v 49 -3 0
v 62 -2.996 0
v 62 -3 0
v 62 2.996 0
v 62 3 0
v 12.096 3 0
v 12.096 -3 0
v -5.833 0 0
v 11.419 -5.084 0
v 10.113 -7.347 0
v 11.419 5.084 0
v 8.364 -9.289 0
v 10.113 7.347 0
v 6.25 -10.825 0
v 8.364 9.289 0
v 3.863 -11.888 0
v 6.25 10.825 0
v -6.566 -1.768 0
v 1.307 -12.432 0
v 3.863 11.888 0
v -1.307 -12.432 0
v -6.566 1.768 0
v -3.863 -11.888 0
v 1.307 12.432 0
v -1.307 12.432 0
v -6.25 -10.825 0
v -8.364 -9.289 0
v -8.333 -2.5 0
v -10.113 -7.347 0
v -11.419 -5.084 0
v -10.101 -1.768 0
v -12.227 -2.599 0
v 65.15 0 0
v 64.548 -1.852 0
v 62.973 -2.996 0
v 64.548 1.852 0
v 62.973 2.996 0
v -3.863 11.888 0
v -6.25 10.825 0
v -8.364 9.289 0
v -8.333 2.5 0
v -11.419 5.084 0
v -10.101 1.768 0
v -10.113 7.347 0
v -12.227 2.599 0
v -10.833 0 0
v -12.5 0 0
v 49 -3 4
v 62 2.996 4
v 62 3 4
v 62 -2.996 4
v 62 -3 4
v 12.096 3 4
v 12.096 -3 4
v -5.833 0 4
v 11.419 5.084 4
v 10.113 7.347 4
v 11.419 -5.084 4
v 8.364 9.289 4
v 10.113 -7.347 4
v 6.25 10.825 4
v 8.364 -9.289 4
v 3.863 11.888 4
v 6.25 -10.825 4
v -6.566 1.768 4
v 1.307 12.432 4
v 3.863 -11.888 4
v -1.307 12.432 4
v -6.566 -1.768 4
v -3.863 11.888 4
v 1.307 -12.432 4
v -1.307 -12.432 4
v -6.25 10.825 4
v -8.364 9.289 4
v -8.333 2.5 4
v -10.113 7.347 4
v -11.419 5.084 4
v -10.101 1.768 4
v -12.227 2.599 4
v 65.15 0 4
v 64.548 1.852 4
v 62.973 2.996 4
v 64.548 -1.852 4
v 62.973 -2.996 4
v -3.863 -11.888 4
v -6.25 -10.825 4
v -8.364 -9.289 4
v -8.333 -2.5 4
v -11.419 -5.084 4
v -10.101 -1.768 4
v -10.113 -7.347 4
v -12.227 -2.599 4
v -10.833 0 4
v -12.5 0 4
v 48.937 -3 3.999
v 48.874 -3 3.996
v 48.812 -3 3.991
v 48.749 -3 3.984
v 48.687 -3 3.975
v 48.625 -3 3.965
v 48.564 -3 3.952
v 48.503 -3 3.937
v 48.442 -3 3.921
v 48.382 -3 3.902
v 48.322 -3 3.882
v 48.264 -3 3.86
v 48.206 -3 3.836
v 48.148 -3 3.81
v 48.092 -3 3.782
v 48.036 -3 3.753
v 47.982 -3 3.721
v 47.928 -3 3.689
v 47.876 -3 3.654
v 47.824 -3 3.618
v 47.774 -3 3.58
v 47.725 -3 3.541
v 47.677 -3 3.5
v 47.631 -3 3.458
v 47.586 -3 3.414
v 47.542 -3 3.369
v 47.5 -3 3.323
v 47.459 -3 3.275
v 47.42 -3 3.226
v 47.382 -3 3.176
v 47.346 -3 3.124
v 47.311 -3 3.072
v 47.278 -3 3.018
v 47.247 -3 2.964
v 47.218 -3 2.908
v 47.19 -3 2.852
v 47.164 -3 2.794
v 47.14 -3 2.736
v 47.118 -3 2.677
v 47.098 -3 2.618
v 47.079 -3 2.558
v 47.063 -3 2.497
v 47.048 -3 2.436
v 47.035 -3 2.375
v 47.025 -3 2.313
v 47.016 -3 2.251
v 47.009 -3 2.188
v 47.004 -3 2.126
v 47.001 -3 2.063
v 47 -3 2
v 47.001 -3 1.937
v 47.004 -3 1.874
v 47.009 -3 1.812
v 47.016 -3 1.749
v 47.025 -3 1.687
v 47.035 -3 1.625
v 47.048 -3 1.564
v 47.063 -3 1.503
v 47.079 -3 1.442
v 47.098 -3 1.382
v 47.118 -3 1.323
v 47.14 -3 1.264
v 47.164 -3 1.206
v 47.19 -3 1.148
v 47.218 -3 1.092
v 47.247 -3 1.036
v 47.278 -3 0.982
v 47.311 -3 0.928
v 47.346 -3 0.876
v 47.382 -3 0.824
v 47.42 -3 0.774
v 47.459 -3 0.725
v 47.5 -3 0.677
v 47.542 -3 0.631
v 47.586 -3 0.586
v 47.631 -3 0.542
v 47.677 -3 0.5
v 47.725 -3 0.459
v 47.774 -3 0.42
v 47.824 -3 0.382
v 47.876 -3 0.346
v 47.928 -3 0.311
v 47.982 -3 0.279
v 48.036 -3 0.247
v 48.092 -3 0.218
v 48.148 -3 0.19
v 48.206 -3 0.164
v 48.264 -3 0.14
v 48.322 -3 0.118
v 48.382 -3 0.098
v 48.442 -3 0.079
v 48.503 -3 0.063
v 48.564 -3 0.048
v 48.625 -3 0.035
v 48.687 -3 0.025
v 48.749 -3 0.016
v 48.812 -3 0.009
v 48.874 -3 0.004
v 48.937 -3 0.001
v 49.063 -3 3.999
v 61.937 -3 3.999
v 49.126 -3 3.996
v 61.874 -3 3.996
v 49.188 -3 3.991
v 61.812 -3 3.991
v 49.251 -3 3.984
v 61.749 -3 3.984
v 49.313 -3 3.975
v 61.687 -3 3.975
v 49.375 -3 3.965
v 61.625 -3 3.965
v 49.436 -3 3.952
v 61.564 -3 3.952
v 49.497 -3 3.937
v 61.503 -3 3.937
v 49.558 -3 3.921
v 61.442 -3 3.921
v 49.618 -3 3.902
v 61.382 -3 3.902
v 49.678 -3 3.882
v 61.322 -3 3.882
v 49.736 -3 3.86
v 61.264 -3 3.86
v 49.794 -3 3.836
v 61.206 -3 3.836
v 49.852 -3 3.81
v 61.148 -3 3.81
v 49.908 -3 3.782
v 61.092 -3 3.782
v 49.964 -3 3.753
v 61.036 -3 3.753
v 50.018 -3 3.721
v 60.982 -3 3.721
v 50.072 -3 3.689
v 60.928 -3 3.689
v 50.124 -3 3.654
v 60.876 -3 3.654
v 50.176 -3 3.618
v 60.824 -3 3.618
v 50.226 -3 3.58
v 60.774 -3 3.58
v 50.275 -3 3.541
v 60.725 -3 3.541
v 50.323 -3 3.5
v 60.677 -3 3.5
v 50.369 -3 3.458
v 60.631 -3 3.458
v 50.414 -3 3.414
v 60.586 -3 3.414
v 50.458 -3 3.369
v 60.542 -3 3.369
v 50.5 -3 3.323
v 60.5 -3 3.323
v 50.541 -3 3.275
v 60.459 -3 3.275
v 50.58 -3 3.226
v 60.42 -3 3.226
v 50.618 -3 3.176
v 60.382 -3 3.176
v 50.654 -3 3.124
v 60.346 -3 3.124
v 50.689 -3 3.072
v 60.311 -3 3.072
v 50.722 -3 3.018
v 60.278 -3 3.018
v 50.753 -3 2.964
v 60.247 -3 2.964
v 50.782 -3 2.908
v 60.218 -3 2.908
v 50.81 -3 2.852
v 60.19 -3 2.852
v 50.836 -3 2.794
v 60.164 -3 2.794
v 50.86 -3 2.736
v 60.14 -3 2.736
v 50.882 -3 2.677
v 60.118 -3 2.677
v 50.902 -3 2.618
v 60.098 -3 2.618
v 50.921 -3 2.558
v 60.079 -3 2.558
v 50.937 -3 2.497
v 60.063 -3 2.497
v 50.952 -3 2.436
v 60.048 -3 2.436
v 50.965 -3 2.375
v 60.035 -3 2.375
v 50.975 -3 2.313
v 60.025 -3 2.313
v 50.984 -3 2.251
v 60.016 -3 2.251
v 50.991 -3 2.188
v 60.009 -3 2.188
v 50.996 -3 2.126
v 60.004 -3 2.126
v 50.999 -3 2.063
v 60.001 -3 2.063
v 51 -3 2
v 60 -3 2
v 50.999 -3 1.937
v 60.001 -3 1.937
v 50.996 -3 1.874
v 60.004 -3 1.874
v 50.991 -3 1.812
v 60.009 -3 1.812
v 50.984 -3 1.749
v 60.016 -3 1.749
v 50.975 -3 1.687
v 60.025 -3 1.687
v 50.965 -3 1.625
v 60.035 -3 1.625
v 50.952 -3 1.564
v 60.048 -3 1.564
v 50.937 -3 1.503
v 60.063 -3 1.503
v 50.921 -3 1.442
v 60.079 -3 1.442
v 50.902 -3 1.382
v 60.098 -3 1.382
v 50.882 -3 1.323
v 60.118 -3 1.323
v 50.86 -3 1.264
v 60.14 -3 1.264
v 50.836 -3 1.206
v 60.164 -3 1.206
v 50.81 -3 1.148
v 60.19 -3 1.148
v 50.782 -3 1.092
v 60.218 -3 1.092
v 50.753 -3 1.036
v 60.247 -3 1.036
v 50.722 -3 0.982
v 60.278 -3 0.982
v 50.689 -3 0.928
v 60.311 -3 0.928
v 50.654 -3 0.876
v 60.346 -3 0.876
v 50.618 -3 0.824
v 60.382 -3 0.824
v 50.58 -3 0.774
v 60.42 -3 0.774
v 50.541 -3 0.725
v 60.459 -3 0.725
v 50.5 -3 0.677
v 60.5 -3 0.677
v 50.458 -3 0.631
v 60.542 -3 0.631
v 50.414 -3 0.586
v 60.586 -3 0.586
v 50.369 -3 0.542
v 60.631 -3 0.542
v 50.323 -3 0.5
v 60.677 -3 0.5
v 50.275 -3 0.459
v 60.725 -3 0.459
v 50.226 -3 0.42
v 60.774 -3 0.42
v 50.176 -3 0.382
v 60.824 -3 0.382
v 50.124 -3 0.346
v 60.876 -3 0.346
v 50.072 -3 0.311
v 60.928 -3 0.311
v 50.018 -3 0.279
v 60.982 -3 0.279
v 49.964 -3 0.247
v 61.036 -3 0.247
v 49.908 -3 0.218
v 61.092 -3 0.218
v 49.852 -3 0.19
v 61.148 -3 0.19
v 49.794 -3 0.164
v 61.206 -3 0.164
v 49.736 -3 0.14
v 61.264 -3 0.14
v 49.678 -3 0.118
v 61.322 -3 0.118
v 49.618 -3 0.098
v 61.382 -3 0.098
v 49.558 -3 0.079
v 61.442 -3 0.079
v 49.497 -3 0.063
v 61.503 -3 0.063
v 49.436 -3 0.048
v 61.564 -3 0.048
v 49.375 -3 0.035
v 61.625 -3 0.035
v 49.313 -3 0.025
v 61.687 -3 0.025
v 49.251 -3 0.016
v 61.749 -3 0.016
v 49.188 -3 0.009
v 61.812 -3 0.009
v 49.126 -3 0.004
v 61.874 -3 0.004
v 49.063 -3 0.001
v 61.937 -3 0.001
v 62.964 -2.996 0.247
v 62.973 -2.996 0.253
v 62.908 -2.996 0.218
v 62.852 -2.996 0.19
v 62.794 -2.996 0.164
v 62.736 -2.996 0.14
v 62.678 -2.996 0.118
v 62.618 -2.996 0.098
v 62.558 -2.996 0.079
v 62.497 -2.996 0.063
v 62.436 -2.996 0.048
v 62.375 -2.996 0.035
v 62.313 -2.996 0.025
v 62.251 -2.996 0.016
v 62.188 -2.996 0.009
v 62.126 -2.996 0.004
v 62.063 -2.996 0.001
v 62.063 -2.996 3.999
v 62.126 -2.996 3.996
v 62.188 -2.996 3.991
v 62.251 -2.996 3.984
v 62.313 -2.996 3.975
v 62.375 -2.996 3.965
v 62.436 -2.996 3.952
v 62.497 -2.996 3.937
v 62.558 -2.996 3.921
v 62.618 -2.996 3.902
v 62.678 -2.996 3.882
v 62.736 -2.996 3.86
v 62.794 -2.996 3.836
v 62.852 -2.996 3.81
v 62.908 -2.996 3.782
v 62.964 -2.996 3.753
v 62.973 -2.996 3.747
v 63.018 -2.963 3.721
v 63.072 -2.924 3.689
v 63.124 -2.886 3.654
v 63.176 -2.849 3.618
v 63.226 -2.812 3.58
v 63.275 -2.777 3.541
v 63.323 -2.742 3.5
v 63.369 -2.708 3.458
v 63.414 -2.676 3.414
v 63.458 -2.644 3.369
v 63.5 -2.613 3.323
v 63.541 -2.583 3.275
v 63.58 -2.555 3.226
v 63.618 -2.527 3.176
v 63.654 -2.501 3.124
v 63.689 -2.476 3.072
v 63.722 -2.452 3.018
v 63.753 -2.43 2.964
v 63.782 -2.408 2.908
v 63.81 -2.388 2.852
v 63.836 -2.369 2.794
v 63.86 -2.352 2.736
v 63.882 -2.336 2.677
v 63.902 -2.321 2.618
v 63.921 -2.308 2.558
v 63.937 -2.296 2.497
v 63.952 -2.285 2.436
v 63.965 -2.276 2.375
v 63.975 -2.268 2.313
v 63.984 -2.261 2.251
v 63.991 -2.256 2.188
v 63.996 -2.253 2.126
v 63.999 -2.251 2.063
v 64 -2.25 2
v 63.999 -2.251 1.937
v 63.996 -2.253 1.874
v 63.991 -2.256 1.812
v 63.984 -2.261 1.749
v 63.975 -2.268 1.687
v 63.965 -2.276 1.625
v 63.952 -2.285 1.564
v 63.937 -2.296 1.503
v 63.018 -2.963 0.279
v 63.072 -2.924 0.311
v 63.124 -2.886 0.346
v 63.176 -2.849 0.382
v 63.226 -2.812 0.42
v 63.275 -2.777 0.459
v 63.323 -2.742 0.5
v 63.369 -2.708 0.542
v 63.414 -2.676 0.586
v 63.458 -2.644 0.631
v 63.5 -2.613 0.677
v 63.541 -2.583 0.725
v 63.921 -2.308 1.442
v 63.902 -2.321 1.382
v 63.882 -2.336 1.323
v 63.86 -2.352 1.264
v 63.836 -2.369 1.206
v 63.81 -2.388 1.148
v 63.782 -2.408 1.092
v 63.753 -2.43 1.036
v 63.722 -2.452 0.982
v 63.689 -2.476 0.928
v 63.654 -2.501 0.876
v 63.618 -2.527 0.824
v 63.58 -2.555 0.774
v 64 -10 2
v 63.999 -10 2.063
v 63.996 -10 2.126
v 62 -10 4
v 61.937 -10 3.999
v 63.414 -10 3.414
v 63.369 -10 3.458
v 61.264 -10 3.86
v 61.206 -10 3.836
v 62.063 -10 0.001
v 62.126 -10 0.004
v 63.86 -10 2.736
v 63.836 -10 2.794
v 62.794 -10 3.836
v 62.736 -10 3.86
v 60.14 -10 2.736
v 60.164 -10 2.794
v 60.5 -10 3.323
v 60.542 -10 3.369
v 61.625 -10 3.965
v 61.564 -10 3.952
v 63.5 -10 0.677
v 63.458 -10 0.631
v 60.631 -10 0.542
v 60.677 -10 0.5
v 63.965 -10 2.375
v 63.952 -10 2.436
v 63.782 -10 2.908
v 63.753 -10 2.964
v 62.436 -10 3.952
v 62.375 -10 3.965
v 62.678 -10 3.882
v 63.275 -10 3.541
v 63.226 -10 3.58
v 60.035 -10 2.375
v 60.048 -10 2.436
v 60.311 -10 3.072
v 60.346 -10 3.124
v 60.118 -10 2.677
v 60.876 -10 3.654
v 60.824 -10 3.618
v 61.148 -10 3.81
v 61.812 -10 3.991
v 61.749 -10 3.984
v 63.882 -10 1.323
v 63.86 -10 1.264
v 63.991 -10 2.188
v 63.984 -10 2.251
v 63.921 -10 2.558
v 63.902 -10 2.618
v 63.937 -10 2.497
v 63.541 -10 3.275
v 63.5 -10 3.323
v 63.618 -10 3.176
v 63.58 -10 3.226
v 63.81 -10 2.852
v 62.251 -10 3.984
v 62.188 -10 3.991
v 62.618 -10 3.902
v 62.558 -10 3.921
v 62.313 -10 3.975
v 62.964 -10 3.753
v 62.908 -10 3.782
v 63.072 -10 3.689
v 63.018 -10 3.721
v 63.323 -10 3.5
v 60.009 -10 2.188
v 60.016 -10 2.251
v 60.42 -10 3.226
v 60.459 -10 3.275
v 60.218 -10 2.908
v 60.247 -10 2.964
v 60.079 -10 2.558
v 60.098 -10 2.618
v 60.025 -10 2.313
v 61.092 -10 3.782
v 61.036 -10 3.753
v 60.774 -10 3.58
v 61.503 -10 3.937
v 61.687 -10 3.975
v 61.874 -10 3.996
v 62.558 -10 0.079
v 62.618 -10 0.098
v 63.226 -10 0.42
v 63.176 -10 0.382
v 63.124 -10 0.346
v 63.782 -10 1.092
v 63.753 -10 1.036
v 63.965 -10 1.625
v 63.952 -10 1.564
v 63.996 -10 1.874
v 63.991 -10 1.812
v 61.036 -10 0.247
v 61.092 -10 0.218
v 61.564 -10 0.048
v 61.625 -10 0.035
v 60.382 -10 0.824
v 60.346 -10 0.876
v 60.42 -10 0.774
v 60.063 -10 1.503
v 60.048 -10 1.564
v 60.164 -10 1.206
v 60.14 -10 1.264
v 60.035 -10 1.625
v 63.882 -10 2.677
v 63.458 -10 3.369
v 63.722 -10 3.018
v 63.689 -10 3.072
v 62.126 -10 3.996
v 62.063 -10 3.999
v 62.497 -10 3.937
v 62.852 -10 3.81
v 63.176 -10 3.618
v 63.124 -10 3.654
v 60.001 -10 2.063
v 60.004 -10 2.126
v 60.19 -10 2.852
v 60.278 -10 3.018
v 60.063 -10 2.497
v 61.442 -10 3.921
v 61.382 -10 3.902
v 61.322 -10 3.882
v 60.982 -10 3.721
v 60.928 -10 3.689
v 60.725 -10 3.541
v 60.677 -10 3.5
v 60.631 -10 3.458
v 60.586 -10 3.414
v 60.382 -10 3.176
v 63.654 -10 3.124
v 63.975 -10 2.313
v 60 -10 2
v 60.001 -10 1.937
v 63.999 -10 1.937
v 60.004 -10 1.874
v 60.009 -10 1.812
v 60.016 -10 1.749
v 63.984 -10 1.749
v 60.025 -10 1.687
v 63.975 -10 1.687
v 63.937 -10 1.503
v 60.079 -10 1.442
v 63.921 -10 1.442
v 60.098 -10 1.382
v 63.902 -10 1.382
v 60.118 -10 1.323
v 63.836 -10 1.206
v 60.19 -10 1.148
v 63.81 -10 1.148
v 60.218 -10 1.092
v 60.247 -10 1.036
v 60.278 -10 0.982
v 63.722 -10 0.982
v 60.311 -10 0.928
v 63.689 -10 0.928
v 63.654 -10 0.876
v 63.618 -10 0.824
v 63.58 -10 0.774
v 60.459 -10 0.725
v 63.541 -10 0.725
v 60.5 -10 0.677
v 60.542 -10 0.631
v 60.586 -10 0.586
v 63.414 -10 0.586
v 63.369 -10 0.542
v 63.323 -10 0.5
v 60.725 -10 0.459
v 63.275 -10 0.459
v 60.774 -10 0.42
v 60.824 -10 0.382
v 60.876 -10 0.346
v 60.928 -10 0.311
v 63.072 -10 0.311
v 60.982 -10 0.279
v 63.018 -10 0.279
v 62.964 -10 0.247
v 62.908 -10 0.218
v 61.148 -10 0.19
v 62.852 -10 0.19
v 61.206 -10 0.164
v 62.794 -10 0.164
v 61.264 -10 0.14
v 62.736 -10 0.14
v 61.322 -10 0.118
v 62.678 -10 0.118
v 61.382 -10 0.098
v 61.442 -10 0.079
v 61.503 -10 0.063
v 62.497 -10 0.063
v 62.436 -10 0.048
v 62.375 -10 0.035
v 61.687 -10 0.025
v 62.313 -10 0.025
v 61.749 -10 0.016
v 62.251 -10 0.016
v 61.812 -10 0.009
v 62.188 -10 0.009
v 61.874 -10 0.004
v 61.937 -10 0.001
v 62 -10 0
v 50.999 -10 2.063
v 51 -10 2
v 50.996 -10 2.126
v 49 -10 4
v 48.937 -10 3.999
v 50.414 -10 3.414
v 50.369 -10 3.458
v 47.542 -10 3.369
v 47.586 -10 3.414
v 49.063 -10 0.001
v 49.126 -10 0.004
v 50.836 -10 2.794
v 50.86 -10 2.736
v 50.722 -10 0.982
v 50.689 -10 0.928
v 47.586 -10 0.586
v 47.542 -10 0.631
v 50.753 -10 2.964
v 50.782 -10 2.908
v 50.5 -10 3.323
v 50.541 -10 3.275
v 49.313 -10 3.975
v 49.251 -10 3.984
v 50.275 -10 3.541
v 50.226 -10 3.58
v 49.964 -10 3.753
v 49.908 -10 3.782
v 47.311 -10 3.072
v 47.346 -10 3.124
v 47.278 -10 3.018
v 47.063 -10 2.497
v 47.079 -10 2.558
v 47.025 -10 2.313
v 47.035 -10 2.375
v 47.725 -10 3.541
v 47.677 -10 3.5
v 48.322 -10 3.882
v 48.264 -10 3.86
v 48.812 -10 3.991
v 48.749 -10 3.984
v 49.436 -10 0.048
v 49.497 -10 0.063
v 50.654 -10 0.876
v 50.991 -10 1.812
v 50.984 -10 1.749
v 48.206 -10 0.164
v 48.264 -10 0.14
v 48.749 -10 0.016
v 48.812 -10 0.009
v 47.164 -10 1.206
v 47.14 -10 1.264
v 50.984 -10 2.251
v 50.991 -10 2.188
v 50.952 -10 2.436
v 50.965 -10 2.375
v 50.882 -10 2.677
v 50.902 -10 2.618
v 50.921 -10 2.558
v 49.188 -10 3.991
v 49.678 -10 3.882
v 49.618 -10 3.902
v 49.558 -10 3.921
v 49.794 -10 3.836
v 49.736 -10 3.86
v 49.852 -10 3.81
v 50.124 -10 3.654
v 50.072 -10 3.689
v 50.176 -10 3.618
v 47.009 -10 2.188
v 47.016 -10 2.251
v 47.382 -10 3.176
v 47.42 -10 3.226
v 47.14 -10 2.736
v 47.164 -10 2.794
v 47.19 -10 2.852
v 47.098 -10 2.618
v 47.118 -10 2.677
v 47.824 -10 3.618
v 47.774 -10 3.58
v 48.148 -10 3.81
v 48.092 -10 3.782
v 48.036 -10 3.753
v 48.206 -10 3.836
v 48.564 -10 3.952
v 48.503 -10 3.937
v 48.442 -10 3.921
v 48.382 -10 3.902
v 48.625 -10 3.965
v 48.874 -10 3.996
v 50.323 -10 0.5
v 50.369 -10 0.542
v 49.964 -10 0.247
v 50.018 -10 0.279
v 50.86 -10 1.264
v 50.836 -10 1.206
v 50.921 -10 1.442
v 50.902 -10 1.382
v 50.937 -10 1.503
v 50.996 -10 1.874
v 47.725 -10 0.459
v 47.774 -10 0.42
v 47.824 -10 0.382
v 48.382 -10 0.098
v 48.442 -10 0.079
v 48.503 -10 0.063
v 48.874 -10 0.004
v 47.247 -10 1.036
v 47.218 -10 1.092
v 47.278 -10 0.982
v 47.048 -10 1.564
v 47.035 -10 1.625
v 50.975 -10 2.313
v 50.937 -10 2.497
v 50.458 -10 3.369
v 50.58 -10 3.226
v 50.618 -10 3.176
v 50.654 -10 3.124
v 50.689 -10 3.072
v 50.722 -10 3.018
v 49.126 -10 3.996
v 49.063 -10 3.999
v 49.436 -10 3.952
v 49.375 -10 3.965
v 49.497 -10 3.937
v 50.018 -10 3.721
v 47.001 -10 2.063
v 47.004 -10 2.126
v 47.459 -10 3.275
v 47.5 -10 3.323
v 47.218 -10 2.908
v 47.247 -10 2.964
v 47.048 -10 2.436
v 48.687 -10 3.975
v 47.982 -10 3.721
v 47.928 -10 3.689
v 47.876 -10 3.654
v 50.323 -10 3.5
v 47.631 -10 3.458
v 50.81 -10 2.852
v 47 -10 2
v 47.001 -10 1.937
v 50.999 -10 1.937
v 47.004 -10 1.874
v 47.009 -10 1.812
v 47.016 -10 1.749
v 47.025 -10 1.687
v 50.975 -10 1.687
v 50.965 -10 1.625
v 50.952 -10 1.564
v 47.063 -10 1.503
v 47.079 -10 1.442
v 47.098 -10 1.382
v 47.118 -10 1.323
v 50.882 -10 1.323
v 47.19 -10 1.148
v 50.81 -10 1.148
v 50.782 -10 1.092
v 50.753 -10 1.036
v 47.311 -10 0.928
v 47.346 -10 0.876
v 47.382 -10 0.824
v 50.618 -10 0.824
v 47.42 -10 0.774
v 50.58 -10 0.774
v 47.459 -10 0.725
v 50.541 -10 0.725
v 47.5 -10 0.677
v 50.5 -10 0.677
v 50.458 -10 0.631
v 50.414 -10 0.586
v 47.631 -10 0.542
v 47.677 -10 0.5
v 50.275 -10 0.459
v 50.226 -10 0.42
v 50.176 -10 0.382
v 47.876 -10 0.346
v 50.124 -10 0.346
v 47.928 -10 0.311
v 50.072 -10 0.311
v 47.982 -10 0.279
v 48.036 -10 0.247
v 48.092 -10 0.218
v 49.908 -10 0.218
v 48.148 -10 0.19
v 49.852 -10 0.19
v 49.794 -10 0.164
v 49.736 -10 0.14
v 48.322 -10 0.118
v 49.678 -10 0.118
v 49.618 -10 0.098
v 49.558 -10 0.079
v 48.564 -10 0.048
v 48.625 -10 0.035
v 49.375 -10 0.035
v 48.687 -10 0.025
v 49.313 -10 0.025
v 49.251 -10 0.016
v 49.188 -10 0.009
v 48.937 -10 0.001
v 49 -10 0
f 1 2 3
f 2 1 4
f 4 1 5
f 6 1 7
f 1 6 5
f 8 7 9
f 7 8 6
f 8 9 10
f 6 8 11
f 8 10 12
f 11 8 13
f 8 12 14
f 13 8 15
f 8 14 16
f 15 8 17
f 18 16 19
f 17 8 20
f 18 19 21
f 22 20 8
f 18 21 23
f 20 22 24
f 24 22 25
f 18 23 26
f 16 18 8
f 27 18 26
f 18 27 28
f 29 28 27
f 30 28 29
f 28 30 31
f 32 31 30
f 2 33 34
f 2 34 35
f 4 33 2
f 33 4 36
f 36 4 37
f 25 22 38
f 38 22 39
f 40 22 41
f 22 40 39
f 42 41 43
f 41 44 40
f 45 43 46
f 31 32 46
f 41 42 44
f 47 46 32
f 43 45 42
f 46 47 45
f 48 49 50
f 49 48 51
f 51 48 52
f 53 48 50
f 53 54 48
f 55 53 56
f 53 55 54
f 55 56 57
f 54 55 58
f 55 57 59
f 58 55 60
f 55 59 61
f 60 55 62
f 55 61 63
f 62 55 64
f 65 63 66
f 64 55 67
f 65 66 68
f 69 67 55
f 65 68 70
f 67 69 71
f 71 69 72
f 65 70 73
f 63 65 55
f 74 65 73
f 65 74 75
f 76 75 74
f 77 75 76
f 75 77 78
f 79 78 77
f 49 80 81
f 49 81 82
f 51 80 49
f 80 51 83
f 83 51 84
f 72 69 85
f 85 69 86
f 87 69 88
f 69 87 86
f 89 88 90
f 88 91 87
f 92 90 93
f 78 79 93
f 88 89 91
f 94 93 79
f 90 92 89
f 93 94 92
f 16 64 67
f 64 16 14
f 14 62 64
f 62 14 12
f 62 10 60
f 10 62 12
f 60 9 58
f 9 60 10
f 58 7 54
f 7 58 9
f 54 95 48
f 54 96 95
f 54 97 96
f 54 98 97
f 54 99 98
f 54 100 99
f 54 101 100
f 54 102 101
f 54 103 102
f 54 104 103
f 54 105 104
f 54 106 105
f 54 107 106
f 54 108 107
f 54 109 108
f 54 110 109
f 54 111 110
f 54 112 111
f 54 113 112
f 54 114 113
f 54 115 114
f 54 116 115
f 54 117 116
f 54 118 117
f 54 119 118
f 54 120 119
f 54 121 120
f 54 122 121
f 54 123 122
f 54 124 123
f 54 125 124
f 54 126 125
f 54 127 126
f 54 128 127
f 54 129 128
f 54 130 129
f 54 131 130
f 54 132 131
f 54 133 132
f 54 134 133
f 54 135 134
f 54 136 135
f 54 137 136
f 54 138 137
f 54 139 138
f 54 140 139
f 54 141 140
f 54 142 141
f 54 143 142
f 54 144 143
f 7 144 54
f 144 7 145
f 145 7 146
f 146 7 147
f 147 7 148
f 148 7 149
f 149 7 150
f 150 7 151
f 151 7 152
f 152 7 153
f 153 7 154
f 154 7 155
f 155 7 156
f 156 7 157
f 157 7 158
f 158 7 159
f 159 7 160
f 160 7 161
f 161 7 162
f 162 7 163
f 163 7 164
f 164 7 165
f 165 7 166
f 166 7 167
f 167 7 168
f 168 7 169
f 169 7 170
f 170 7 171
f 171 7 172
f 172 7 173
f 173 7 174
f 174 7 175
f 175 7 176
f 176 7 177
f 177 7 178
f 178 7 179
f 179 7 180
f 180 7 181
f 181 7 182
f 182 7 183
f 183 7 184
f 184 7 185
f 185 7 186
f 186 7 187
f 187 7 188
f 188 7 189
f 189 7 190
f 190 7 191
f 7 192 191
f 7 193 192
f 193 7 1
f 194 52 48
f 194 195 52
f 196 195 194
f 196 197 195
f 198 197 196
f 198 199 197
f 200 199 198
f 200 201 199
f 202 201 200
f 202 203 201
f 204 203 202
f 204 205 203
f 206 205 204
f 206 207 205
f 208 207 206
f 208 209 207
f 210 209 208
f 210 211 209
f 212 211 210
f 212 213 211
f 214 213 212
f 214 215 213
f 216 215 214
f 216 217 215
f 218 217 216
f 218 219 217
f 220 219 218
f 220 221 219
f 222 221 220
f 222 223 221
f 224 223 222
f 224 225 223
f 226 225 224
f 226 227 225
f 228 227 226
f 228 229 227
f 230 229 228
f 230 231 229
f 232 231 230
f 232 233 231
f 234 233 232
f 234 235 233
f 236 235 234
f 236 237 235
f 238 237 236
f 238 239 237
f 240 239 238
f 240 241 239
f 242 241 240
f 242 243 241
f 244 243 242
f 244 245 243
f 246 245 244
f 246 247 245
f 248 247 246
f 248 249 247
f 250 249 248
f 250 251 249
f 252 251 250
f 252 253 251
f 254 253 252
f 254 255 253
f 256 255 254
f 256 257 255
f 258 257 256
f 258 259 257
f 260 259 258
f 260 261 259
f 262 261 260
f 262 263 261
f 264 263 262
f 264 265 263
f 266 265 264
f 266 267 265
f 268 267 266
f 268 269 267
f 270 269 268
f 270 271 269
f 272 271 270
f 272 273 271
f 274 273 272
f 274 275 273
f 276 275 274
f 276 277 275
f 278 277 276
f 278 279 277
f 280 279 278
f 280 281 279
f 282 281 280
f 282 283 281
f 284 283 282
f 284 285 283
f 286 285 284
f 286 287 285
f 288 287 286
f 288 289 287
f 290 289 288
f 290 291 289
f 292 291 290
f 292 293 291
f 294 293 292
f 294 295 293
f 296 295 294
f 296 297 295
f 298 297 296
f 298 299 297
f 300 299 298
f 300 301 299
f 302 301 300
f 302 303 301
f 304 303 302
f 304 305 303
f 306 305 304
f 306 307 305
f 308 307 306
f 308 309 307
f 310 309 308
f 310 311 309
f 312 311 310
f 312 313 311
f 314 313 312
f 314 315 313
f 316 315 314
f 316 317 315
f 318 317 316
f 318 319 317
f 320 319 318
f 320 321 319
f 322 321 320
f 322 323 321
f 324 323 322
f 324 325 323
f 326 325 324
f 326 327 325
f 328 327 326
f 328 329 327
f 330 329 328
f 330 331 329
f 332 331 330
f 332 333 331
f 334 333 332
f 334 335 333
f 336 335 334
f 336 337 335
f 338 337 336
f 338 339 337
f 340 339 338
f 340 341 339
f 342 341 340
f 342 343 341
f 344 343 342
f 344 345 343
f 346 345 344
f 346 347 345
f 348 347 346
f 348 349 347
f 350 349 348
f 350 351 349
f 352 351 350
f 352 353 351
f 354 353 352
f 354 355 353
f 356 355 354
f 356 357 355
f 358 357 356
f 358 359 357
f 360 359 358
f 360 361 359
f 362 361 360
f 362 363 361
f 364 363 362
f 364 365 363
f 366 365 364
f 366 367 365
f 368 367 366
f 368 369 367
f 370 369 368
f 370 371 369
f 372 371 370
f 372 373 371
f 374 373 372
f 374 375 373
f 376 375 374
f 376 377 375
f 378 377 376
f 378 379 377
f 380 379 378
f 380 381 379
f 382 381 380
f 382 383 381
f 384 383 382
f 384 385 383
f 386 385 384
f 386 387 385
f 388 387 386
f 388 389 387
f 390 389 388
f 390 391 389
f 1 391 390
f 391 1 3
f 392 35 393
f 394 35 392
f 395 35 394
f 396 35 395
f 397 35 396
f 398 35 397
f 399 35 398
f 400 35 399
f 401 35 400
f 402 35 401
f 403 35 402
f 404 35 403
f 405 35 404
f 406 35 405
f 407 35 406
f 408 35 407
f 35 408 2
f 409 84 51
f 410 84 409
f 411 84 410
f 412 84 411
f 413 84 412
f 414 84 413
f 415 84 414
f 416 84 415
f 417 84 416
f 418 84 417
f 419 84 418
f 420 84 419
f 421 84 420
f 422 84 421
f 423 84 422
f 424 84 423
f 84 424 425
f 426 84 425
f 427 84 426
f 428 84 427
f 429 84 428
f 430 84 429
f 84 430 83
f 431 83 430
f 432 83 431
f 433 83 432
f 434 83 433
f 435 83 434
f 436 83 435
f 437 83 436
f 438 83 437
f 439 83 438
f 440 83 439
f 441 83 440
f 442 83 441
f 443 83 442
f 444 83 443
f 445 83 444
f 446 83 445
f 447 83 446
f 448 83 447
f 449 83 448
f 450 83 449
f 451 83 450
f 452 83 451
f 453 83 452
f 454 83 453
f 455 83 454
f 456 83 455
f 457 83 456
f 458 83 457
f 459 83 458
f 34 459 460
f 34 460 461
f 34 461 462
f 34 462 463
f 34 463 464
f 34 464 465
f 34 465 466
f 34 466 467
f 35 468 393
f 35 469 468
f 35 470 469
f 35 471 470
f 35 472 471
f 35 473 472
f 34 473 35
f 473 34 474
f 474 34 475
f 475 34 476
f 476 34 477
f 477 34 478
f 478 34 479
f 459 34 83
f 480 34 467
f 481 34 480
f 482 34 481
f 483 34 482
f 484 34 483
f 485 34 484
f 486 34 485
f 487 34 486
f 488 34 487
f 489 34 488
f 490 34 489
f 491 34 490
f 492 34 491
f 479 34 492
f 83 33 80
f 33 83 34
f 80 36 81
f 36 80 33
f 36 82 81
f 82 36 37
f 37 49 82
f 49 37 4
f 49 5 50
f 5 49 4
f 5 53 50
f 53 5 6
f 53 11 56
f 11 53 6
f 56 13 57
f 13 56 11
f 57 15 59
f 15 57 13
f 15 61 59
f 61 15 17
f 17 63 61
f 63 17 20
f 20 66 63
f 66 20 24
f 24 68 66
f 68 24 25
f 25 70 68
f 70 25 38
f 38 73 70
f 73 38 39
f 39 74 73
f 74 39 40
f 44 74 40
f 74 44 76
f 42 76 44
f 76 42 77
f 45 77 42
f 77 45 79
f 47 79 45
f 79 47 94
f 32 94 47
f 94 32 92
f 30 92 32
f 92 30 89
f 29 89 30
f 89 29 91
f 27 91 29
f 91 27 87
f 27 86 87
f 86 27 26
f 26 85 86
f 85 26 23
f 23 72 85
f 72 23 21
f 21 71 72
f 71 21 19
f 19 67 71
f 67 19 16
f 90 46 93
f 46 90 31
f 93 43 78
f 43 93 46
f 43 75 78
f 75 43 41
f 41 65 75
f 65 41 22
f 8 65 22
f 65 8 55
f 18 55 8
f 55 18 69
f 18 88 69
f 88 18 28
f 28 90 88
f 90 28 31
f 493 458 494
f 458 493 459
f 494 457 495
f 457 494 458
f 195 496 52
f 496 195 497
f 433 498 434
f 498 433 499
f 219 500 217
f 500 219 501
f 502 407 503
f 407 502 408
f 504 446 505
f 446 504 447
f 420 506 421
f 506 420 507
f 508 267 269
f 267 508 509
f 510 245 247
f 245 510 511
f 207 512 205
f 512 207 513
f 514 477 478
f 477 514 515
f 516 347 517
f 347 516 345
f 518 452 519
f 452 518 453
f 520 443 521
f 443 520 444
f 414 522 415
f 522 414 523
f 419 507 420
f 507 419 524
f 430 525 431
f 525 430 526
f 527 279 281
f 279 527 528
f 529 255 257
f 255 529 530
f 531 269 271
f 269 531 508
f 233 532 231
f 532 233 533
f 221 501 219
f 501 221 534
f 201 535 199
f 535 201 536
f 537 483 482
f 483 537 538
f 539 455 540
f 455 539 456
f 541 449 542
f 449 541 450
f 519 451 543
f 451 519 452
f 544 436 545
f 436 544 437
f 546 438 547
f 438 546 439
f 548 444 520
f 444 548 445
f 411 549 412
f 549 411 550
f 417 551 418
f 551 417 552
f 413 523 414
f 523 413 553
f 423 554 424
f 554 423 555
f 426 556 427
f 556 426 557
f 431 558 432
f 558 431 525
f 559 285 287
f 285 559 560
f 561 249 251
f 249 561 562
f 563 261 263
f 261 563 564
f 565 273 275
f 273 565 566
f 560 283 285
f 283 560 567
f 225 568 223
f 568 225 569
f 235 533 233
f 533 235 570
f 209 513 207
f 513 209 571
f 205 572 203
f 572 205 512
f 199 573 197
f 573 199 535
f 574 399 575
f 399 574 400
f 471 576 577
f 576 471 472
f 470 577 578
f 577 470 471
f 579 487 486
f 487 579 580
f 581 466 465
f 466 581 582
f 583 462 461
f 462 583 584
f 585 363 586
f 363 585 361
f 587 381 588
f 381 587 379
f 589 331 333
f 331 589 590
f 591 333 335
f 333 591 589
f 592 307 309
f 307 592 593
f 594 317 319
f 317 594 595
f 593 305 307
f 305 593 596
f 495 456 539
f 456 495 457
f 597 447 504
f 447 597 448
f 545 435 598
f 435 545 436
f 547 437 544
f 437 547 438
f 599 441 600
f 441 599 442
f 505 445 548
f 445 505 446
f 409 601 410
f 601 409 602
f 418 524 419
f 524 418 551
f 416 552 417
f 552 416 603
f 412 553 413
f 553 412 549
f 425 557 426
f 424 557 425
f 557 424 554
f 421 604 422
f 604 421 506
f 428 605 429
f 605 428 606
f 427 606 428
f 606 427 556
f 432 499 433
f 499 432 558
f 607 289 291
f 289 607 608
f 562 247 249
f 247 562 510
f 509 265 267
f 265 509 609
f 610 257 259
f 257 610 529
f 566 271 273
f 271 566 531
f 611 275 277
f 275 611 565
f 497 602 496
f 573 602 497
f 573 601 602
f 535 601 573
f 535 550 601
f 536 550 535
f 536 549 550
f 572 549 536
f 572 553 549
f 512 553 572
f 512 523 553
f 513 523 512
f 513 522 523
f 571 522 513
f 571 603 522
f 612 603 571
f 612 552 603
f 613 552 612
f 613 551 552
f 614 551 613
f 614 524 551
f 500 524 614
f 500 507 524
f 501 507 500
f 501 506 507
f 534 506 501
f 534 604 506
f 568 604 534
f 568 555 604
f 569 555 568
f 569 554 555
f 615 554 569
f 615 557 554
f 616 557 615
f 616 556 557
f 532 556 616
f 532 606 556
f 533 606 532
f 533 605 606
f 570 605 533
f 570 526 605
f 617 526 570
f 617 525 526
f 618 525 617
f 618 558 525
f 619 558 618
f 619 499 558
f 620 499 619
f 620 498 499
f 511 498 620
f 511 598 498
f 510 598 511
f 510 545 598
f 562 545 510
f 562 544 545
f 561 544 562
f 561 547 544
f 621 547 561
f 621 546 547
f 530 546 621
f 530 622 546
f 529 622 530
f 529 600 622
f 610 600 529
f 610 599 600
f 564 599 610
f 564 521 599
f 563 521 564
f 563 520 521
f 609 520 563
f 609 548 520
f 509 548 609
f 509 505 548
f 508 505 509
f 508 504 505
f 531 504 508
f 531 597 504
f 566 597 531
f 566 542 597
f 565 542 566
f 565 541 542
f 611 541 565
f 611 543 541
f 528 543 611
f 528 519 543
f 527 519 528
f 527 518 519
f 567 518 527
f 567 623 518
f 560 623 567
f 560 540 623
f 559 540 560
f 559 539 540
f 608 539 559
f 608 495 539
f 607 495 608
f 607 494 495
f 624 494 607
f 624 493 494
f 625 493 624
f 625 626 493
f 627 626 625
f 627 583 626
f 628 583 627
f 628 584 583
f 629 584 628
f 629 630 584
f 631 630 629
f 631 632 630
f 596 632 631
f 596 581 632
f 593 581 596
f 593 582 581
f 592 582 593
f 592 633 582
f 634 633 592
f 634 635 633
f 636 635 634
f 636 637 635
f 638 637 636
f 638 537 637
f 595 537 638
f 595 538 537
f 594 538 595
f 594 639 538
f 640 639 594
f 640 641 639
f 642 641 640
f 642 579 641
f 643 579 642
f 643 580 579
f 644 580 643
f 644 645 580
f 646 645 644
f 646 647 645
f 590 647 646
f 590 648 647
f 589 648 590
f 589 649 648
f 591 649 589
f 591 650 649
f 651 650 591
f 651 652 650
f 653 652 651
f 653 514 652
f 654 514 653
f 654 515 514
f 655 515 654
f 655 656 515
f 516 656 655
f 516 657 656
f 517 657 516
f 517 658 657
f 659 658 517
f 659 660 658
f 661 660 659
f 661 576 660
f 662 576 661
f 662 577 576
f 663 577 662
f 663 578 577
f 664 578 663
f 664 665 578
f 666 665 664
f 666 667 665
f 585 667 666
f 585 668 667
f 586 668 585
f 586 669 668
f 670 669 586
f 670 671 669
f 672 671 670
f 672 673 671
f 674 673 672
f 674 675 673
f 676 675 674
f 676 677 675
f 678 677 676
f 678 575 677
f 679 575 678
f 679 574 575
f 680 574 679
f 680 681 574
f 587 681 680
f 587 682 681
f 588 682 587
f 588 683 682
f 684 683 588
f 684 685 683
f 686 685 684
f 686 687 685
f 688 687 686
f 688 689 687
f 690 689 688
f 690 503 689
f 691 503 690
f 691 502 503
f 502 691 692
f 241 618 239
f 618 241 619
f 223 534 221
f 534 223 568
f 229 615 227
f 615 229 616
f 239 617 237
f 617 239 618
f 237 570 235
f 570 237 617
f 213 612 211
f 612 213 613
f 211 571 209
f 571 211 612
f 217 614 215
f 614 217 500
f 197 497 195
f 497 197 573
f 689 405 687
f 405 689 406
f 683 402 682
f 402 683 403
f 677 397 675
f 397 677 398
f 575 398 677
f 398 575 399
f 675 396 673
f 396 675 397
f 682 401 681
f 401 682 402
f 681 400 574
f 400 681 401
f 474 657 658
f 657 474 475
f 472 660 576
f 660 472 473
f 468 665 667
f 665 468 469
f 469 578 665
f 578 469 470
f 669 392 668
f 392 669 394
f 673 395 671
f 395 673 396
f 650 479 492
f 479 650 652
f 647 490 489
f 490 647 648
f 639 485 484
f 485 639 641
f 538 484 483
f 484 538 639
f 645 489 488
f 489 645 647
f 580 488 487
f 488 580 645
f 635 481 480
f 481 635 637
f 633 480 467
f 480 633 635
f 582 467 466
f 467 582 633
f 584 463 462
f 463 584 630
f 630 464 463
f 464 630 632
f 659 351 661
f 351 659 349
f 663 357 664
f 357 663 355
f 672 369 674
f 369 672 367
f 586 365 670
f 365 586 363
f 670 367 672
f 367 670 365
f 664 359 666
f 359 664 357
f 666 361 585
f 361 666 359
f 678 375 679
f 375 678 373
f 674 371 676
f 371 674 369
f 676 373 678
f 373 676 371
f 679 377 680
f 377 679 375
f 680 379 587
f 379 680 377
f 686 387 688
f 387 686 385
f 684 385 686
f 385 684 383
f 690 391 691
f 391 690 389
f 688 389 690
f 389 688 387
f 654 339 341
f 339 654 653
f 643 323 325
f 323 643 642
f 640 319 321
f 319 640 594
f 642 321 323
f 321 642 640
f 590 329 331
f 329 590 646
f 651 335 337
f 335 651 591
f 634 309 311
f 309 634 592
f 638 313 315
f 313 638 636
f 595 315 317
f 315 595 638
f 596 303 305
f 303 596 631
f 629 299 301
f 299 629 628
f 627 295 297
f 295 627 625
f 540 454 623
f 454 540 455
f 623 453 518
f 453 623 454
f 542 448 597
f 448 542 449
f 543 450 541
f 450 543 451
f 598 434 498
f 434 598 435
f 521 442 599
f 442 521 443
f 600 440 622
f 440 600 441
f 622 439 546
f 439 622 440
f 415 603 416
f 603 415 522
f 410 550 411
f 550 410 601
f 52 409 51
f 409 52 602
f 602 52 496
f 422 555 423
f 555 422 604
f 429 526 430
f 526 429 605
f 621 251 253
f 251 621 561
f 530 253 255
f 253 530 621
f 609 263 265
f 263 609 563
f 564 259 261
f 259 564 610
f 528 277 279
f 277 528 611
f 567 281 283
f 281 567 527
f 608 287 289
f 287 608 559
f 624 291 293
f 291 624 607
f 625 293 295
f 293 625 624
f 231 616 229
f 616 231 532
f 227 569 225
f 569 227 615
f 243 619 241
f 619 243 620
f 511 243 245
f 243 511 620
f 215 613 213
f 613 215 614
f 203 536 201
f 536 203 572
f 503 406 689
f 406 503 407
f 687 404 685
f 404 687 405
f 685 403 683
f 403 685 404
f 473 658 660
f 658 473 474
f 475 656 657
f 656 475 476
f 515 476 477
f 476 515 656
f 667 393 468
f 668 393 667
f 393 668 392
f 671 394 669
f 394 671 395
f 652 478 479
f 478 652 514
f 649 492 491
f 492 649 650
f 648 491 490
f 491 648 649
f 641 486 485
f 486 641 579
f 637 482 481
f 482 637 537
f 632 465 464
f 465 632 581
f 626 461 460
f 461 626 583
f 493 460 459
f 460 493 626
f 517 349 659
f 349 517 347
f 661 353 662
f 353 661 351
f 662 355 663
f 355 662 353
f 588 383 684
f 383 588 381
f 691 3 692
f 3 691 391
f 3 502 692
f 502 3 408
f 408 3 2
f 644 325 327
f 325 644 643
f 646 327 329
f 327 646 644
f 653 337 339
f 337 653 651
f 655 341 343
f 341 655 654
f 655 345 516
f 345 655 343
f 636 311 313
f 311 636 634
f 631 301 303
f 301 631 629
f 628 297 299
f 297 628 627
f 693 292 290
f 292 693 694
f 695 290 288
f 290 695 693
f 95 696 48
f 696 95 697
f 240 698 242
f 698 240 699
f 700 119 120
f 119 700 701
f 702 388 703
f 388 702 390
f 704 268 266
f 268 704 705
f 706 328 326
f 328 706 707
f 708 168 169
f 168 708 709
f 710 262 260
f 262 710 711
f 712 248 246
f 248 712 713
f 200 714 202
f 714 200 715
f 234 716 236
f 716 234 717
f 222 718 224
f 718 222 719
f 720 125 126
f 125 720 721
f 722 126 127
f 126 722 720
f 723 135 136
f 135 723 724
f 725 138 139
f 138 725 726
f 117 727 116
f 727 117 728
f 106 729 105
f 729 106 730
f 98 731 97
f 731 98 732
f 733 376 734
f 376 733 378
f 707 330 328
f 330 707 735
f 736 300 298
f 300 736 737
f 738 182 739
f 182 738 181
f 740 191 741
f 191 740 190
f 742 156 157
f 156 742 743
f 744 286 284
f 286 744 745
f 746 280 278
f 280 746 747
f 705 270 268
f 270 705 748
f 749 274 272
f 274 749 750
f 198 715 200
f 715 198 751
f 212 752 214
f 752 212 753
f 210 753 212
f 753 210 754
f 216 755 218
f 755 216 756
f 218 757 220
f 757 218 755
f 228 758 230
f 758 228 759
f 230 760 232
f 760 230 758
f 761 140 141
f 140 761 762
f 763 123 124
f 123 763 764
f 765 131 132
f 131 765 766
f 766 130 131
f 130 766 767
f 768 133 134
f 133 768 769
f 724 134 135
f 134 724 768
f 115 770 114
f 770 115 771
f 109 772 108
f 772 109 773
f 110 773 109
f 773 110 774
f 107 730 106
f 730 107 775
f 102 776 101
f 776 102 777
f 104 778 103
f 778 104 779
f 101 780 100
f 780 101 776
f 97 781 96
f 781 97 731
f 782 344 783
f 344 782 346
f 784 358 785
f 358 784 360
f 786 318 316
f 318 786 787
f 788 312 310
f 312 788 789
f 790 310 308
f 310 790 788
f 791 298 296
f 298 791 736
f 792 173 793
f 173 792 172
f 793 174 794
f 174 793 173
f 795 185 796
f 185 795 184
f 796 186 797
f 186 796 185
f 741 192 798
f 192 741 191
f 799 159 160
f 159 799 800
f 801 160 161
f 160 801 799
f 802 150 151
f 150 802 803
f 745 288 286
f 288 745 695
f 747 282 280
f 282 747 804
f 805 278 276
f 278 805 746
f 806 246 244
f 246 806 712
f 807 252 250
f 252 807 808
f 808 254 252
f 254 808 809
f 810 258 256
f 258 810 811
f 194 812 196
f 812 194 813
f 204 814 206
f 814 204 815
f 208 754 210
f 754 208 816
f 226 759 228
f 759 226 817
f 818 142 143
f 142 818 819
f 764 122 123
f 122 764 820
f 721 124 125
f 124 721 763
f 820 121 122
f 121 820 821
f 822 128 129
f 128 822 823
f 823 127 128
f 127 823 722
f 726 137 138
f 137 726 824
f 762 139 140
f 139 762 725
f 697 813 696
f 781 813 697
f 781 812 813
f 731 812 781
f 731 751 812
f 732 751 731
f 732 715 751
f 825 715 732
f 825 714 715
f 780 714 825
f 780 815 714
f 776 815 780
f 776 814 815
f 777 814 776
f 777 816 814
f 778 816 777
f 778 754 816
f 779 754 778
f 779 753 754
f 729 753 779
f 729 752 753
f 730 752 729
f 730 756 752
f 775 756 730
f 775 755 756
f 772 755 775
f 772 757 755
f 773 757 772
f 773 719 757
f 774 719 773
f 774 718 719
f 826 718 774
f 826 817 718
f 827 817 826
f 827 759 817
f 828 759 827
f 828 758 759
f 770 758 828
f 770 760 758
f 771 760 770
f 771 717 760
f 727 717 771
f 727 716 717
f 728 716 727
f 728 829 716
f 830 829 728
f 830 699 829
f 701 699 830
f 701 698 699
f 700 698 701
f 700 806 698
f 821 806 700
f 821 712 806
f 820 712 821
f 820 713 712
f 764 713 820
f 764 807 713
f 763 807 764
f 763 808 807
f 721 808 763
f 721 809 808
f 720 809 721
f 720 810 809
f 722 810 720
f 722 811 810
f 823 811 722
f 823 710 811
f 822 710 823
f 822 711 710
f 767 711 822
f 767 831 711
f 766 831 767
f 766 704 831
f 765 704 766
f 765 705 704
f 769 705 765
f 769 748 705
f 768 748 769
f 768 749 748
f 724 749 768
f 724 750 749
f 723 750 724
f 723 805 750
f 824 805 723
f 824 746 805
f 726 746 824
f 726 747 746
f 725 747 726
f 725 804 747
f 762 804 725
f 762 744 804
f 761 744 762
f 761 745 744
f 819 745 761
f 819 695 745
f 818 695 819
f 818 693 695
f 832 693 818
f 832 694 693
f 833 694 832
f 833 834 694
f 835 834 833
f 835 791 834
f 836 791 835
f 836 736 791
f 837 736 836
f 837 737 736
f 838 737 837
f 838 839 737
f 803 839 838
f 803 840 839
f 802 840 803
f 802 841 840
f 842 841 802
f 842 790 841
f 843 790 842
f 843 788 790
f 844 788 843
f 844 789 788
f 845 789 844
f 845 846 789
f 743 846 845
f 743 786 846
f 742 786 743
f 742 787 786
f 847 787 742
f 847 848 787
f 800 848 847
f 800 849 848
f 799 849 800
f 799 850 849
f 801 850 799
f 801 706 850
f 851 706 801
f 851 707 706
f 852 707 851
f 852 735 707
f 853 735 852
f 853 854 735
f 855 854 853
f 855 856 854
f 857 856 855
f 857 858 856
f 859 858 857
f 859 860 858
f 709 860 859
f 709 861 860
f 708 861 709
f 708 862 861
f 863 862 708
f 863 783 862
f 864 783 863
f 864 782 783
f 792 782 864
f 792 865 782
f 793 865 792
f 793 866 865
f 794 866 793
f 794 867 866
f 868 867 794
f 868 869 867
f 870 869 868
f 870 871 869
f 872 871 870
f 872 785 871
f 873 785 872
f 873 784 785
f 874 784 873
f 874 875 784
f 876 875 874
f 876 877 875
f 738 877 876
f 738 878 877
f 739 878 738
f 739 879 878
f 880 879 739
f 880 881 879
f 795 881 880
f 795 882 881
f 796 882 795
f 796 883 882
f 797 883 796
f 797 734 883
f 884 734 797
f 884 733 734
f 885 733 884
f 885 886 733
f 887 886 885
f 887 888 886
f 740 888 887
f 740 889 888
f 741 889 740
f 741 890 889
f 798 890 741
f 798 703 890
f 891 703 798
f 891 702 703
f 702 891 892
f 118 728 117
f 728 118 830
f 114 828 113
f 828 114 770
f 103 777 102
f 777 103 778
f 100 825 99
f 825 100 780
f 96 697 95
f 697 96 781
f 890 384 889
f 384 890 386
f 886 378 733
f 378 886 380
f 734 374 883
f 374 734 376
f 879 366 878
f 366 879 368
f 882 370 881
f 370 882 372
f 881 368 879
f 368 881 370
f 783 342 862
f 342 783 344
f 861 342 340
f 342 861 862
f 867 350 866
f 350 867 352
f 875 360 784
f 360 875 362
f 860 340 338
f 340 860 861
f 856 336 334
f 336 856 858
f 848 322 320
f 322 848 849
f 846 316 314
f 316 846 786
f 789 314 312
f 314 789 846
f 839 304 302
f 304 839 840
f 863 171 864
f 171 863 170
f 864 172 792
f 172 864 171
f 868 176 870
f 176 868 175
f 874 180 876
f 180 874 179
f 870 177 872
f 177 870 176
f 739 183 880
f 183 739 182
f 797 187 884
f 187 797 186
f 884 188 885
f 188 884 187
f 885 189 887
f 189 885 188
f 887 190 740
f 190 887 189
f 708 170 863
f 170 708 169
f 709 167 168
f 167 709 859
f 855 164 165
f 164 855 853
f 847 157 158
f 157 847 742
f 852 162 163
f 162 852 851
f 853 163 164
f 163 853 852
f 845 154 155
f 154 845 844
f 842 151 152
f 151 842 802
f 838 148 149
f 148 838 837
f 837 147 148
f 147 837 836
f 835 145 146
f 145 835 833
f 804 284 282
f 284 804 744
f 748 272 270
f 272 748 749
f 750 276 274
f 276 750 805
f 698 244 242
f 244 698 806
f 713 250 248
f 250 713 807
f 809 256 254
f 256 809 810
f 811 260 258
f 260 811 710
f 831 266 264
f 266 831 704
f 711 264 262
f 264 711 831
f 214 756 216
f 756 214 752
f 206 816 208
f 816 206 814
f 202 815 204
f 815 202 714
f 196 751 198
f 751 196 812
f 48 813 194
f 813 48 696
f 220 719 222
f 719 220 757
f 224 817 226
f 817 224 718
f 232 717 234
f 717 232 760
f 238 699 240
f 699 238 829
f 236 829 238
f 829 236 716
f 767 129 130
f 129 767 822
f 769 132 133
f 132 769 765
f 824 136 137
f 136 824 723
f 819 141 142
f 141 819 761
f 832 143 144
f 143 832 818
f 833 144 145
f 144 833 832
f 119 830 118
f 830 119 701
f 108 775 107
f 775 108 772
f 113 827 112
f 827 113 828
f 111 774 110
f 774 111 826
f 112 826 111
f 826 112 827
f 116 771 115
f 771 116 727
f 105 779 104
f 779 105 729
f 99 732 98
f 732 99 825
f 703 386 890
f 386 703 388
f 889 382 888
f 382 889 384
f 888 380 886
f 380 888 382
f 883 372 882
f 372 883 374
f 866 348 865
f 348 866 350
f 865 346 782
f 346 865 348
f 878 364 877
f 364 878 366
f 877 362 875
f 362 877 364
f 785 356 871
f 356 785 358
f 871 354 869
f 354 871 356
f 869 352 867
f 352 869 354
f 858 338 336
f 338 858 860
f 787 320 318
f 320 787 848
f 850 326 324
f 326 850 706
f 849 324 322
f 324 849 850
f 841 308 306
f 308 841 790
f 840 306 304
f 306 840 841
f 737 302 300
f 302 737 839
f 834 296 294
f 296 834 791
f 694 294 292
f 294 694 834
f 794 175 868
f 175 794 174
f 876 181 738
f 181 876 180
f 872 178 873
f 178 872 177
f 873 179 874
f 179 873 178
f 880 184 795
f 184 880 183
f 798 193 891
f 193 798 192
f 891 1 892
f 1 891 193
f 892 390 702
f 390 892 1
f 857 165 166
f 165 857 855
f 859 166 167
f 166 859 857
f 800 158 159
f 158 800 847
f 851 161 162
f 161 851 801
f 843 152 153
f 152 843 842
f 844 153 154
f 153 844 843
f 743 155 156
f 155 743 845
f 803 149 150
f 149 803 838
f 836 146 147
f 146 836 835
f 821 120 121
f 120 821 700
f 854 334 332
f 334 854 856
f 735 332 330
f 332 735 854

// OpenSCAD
// keystand

toothgap=13;
toothwidthS=3;
toothwidthR=4;
toothlength=10;
length=62;
height=5;
handle=25;
armwidth=6;
keyring=5;

module keystand(){
	//handle
	difference() {
		circle(d=handle);
		translate([-handle/3,0]) circle(d=keyring);
	}
	//body
	translate([length/2,0,0]) square([length,armwidth],center=true);
	translate([length,0,0]) circle(d=armwidth*1.05);

	//square teeth
	//#translate([length,0,0]) rotate([0,0,270]) square([toothlength,toothwidthS]);
	//#translate([length-toothgap,0,0]) rotate([0,0,270]) square([toothlength,toothwidthS]);
}

linear_extrude(height = 4)
keystand();

//round teeth
#translate([length,0,height/2.5]) rotate([90,0,0]) cylinder(h=toothlength,d=toothwidthR, $fn=200);
#translate([length-toothgap,0,height/2.5]) rotate([90,0,0]) cylinder(h=toothlength,d=toothwidthR, $fn=200);
